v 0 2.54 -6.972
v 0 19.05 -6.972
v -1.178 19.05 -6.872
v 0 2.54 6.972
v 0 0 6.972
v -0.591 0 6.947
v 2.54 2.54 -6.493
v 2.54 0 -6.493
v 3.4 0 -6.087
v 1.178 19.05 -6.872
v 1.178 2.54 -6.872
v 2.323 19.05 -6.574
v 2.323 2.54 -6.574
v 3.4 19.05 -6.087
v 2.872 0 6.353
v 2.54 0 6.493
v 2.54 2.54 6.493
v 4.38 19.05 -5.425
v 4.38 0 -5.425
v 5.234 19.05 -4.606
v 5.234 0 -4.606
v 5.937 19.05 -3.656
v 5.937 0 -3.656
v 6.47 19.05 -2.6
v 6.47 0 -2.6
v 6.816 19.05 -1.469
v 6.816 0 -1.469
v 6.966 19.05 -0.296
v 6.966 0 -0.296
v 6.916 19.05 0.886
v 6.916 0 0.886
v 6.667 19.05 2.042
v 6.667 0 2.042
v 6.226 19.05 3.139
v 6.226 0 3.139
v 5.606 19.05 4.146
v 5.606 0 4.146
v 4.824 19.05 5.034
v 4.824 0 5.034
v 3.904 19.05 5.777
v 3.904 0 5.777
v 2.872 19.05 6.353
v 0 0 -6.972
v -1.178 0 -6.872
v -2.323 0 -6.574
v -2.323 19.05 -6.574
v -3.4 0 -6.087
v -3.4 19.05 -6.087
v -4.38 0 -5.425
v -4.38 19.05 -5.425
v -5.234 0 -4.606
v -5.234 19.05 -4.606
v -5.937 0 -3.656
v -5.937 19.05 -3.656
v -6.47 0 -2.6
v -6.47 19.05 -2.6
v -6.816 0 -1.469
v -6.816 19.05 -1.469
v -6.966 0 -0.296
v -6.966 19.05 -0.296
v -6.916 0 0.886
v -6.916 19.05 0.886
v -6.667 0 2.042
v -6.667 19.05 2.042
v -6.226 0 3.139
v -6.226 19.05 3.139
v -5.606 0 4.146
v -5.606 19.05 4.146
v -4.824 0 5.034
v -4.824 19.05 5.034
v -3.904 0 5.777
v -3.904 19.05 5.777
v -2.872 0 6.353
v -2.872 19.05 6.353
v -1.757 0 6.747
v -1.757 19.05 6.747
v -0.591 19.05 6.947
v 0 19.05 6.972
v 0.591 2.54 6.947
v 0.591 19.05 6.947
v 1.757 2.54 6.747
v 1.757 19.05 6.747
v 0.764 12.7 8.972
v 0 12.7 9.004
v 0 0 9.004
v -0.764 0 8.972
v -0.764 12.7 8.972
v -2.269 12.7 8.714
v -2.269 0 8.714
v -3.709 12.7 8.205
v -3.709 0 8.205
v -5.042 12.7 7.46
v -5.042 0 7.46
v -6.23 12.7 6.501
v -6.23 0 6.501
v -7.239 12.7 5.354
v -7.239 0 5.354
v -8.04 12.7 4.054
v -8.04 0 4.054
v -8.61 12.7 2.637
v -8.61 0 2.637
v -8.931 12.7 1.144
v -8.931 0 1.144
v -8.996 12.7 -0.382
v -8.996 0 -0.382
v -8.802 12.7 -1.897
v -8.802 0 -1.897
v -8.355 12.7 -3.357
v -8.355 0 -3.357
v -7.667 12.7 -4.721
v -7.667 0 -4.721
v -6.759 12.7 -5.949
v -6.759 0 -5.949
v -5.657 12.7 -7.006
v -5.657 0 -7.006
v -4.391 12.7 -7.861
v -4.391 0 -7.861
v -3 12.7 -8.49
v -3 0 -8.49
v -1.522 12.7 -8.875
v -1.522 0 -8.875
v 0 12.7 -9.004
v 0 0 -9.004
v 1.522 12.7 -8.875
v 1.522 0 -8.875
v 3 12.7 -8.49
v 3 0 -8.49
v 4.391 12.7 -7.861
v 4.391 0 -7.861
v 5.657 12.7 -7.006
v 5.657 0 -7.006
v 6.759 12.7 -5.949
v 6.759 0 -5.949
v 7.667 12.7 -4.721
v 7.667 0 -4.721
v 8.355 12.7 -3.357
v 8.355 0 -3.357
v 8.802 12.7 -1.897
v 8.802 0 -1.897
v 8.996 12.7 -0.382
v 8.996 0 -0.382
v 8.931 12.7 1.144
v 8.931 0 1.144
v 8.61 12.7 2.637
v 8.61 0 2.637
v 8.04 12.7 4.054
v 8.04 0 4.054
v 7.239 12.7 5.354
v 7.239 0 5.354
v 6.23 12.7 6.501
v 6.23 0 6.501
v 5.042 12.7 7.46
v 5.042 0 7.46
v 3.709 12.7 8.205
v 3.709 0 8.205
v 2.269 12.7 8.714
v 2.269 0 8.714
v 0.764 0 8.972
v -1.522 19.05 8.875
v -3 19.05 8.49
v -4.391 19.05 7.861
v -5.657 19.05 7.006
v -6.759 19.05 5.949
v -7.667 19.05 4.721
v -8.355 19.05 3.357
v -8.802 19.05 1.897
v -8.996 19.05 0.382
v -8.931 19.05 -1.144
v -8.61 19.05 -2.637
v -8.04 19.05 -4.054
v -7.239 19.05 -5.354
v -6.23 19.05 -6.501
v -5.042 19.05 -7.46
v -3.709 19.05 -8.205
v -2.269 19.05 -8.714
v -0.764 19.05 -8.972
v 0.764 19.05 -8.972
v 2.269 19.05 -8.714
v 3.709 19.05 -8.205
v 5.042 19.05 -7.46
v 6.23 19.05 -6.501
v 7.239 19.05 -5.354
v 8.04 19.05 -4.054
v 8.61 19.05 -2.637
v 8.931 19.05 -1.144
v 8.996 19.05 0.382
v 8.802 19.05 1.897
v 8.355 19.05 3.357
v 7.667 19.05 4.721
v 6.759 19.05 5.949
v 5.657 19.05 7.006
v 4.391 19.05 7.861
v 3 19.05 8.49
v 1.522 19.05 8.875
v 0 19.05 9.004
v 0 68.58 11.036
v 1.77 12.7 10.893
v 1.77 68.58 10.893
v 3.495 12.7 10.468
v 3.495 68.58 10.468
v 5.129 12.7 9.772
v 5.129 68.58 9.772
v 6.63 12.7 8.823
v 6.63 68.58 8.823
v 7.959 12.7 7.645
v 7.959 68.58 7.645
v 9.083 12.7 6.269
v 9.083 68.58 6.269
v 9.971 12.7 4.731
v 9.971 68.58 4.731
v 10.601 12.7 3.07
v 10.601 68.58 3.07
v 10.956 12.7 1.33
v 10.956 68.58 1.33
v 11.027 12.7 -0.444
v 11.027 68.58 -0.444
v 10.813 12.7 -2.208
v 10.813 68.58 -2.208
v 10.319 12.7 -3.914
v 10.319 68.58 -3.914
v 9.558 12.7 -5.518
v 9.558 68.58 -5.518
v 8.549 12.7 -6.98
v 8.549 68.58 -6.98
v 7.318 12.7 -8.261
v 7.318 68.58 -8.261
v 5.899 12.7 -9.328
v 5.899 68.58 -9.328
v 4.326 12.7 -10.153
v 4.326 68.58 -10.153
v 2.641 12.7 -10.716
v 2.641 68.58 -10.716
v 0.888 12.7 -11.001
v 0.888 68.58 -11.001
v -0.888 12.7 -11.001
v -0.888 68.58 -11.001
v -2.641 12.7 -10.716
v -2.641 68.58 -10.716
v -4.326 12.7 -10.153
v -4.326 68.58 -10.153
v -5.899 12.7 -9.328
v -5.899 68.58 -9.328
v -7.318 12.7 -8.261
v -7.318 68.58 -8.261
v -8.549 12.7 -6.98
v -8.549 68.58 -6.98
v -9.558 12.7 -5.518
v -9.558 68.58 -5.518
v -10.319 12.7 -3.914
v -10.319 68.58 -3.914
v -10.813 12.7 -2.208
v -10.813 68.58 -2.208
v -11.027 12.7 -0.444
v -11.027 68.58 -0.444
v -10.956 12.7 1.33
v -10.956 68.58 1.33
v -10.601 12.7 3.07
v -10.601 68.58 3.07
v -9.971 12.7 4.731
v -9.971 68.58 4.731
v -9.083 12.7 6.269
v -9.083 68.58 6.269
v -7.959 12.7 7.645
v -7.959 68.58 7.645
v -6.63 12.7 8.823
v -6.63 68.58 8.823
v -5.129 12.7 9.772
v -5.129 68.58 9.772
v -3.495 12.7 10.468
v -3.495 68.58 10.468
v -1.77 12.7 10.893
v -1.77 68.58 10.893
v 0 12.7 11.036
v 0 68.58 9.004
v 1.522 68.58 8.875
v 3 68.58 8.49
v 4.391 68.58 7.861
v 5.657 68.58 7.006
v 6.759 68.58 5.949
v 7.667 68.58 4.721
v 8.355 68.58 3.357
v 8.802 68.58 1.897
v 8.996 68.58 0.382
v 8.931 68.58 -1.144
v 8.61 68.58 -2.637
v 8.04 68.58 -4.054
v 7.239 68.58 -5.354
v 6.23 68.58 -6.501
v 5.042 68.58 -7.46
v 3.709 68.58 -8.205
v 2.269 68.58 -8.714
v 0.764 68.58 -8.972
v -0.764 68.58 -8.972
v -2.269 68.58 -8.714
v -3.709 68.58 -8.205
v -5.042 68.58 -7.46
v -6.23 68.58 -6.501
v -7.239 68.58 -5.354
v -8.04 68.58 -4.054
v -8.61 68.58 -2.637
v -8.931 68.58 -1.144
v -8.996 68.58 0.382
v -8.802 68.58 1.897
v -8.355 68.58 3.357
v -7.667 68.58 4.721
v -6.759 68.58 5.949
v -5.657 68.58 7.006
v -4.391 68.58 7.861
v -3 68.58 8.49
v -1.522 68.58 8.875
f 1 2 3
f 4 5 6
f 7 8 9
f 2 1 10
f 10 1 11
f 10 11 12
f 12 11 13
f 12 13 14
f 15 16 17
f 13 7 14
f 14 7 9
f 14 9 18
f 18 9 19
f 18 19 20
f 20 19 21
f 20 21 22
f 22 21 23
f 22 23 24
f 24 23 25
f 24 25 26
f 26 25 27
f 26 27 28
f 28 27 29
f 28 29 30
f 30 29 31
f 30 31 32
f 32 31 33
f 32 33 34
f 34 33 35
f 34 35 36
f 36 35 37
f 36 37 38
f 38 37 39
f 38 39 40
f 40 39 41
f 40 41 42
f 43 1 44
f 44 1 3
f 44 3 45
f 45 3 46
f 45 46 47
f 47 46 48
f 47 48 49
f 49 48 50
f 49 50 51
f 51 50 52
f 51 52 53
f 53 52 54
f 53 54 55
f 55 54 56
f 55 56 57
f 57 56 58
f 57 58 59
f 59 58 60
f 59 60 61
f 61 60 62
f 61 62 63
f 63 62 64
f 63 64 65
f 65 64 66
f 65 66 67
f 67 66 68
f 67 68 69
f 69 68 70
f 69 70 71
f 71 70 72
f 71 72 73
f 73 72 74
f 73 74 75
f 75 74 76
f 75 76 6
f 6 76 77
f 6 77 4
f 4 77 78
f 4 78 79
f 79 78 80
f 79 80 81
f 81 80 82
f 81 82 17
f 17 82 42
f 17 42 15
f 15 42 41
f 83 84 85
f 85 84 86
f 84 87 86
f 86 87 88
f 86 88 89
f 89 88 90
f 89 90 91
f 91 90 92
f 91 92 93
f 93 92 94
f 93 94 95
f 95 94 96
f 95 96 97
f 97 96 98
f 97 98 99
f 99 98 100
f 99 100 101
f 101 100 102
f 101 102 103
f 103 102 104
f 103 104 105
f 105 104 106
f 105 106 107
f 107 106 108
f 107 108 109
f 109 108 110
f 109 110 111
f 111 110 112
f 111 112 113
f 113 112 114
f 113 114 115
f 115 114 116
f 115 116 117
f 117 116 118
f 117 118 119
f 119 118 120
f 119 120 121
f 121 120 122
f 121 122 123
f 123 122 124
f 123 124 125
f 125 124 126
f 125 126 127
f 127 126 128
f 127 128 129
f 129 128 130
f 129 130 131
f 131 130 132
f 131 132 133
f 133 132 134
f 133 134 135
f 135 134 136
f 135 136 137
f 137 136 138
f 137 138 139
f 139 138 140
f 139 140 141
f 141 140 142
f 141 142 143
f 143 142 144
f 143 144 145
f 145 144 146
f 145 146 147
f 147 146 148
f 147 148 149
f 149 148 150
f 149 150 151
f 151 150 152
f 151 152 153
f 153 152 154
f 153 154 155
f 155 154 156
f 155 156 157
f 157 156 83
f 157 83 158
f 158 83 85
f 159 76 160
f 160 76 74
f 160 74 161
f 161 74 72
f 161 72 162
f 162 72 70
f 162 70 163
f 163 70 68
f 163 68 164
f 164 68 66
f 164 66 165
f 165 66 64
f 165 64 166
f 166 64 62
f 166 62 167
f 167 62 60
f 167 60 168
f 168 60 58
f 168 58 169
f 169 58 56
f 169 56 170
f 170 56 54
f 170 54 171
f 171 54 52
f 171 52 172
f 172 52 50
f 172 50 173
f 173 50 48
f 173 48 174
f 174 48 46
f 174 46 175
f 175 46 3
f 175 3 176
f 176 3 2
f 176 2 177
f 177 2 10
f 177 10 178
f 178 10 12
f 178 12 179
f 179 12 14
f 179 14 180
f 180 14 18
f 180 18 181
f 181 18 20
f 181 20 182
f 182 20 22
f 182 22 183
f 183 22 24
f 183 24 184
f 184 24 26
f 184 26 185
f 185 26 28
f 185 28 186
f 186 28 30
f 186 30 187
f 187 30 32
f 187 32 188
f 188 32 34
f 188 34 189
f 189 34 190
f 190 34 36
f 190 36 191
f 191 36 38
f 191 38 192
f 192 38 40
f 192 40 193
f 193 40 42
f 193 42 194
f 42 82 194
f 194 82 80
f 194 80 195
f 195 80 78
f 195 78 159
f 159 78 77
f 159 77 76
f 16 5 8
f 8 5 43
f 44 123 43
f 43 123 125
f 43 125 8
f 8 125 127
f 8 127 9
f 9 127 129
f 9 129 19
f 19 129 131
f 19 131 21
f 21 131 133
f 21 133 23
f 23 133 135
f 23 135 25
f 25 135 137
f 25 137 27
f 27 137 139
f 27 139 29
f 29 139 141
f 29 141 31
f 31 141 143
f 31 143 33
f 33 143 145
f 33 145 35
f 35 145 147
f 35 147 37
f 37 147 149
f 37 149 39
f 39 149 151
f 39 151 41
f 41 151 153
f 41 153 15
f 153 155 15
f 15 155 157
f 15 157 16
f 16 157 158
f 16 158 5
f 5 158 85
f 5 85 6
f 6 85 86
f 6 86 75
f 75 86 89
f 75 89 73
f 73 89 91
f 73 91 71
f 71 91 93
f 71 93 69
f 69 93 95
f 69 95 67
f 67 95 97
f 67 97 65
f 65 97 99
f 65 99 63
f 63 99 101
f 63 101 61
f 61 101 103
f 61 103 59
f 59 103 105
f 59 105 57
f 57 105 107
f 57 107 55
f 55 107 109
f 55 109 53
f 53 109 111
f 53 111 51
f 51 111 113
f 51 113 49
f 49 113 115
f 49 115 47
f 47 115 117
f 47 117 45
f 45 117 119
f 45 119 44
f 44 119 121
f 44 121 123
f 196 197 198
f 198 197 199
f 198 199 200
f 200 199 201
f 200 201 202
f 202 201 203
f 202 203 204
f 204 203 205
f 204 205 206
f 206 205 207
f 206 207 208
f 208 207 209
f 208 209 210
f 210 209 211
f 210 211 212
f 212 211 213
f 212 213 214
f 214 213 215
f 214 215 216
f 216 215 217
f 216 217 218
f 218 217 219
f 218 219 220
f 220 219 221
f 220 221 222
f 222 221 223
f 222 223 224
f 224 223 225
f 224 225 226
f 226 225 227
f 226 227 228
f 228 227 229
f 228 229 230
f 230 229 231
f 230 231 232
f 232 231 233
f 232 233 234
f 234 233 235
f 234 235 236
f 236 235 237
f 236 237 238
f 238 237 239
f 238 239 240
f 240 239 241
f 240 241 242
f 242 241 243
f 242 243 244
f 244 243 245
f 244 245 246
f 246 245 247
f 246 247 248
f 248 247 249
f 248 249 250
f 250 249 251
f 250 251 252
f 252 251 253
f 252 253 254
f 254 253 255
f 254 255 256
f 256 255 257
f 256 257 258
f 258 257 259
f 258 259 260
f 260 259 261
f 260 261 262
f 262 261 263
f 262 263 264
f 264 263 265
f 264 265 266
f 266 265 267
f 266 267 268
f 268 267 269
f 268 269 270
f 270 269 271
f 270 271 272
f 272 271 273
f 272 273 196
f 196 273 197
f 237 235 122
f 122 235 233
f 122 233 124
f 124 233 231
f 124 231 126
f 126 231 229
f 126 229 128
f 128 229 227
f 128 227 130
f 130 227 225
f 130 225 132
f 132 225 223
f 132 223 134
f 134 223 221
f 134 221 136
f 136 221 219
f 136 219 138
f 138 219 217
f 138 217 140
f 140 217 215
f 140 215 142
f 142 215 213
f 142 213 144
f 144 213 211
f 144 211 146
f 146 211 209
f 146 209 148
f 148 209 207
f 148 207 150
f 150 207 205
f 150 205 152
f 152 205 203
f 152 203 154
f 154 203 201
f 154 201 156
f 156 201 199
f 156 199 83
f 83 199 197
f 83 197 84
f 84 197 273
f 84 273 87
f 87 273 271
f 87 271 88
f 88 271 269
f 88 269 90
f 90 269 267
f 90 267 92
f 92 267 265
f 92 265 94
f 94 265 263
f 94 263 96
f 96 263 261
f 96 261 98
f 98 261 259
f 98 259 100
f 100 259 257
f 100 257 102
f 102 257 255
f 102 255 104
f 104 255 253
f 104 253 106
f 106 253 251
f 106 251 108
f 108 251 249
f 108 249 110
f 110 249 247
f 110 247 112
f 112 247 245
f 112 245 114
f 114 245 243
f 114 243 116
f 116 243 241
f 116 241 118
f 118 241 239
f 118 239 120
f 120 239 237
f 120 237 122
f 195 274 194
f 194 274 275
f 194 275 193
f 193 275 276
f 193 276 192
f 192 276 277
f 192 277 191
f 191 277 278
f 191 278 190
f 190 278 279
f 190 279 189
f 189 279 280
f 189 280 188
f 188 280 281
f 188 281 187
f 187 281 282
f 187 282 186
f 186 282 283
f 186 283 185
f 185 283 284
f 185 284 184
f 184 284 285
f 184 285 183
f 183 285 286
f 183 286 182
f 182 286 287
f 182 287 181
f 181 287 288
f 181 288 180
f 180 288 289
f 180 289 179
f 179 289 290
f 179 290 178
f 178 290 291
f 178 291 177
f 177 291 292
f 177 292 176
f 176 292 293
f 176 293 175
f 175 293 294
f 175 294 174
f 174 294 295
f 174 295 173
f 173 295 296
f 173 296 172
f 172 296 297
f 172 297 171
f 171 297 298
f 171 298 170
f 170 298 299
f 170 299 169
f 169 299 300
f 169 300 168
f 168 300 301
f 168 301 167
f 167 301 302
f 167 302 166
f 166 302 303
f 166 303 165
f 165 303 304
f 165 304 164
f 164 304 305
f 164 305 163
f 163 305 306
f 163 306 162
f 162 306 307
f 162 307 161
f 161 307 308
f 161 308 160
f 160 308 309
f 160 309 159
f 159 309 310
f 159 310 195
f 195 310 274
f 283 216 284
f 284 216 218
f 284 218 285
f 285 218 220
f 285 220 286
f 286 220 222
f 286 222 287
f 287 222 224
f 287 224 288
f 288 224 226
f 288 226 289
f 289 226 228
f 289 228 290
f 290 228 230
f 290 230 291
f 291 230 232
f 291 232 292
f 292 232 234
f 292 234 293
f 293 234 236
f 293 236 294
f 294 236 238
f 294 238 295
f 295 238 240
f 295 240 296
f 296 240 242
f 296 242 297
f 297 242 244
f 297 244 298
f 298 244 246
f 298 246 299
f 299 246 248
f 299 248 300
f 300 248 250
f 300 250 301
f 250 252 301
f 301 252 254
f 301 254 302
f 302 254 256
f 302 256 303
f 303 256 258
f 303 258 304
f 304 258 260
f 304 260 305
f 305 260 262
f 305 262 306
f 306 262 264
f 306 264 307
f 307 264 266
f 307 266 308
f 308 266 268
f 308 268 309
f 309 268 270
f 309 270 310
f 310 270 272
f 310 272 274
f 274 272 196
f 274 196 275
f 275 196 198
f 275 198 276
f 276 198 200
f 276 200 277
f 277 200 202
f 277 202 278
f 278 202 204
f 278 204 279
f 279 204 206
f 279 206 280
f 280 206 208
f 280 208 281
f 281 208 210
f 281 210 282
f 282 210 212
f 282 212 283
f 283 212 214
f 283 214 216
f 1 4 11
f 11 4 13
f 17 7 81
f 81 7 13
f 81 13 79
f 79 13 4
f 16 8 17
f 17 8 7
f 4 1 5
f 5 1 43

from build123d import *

# Parameters (mm, degrees)
SKETCH1_R                            = 9.0043
SKETCH1_R_2                          = 6.9723
BOSS_EXTRUDE1_DEPTH                  = 19.05
BOSS_EXTRUDE2_DEPTH                  = 49.53
BOSS_EXTRUDE2_DEPTH_BACK             = 6.35
SKETCH2_R                            = 11.0363
SKETCH2_R_2                          = 9.0043
BOSS_EXTRUDE3_REACH                  = 72.334
BOSS_EXTRUDE3_END_RADIUS             = 6.9723
SKETCH3_W                            = 2.54
SKETCH3_H                            = 2.54
BOSS_EXTRUDE3_DIRECTION_2_REACH      = 72.334
BOSS_EXTRUDE3_DIRECTION_2_END_RADIUS = 6.9723


with BuildPart() as part:
    # Sketch1 → Boss-Extrude1 (new body)
    with BuildSketch(Plane(origin=(0, 0, 0), x_dir=(1, 0, 0), z_dir=(0, 1, 0))):
        with Locations(Location((0, 0, 0), (0, 0, 90))):
            Circle(SKETCH1_R)
        with Locations(Location((0, 0, 0), (0, 0, 90))):
            Circle(SKETCH1_R_2, mode=Mode.SUBTRACT)
    extrude(amount=BOSS_EXTRUDE1_DEPTH)

    # Sketch2 → Boss-Extrude2 (add, two sides: drawn at the far end of the back side and taken through both)
    with BuildSketch(Plane(origin=(0, 19.05, 0), x_dir=(1, 0, 0), z_dir=(0, 1, 0)).offset(-BOSS_EXTRUDE2_DEPTH_BACK)):
        with Locations(Location((0, 0, 0), (0, 0, 270))):
            Circle(SKETCH2_R)
        with Locations(Location((0, 0, 0), (0, 0, 90))):
            Circle(SKETCH2_R_2, mode=Mode.SUBTRACT)
    extrude(amount=BOSS_EXTRUDE2_DEPTH + BOSS_EXTRUDE2_DEPTH_BACK)

    # Boss-Extrude3: up to this cylinder (the profile starts inside it)
    boss_extrude3_end = Plane(origin=(0, 1.27, 0), z_dir=(0, -1, 0)) * Cylinder(BOSS_EXTRUDE3_END_RADIUS, 159.6126, mode=Mode.PRIVATE)
    # Sketch3 → Boss-Extrude3 (add, up to the surface)
    with BuildSketch(Plane.XY, mode=Mode.PRIVATE) as boss_extrude3_sk1:
        with Locations((1.27, 1.27)):
            Rectangle(SKETCH3_W, SKETCH3_H)
    boss_extrude3_tool1 = extrude(boss_extrude3_sk1.sketch, amount=BOSS_EXTRUDE3_REACH, mode=Mode.PRIVATE) & boss_extrude3_end
    add(boss_extrude3_tool1.solids().sort_by_distance((1.27, 1.27, 0))[0])

    # Boss-Extrude3 direction 2: up to this cylinder (the profile starts inside it)
    boss_extrude3_direction_2_end = Plane(origin=(0, 1.27, 0), z_dir=(0, -1, 0)) * Cylinder(BOSS_EXTRUDE3_DIRECTION_2_END_RADIUS, 159.6126, mode=Mode.PRIVATE)
    # Sketch3 → Boss-Extrude3 direction 2 (add, up to the surface)
    with BuildSketch(Plane.XY, mode=Mode.PRIVATE) as boss_extrude3_direction_2_sk1:
        with Locations((1.27, 1.27)):
            Rectangle(SKETCH3_W, SKETCH3_H)
    boss_extrude3_direction_2_tool1 = extrude(boss_extrude3_direction_2_sk1.sketch, amount=-BOSS_EXTRUDE3_DIRECTION_2_REACH, mode=Mode.PRIVATE) & boss_extrude3_direction_2_end
    add(boss_extrude3_direction_2_tool1.solids().sort_by_distance((1.27, 1.27, 0))[0])


solid = part.part
